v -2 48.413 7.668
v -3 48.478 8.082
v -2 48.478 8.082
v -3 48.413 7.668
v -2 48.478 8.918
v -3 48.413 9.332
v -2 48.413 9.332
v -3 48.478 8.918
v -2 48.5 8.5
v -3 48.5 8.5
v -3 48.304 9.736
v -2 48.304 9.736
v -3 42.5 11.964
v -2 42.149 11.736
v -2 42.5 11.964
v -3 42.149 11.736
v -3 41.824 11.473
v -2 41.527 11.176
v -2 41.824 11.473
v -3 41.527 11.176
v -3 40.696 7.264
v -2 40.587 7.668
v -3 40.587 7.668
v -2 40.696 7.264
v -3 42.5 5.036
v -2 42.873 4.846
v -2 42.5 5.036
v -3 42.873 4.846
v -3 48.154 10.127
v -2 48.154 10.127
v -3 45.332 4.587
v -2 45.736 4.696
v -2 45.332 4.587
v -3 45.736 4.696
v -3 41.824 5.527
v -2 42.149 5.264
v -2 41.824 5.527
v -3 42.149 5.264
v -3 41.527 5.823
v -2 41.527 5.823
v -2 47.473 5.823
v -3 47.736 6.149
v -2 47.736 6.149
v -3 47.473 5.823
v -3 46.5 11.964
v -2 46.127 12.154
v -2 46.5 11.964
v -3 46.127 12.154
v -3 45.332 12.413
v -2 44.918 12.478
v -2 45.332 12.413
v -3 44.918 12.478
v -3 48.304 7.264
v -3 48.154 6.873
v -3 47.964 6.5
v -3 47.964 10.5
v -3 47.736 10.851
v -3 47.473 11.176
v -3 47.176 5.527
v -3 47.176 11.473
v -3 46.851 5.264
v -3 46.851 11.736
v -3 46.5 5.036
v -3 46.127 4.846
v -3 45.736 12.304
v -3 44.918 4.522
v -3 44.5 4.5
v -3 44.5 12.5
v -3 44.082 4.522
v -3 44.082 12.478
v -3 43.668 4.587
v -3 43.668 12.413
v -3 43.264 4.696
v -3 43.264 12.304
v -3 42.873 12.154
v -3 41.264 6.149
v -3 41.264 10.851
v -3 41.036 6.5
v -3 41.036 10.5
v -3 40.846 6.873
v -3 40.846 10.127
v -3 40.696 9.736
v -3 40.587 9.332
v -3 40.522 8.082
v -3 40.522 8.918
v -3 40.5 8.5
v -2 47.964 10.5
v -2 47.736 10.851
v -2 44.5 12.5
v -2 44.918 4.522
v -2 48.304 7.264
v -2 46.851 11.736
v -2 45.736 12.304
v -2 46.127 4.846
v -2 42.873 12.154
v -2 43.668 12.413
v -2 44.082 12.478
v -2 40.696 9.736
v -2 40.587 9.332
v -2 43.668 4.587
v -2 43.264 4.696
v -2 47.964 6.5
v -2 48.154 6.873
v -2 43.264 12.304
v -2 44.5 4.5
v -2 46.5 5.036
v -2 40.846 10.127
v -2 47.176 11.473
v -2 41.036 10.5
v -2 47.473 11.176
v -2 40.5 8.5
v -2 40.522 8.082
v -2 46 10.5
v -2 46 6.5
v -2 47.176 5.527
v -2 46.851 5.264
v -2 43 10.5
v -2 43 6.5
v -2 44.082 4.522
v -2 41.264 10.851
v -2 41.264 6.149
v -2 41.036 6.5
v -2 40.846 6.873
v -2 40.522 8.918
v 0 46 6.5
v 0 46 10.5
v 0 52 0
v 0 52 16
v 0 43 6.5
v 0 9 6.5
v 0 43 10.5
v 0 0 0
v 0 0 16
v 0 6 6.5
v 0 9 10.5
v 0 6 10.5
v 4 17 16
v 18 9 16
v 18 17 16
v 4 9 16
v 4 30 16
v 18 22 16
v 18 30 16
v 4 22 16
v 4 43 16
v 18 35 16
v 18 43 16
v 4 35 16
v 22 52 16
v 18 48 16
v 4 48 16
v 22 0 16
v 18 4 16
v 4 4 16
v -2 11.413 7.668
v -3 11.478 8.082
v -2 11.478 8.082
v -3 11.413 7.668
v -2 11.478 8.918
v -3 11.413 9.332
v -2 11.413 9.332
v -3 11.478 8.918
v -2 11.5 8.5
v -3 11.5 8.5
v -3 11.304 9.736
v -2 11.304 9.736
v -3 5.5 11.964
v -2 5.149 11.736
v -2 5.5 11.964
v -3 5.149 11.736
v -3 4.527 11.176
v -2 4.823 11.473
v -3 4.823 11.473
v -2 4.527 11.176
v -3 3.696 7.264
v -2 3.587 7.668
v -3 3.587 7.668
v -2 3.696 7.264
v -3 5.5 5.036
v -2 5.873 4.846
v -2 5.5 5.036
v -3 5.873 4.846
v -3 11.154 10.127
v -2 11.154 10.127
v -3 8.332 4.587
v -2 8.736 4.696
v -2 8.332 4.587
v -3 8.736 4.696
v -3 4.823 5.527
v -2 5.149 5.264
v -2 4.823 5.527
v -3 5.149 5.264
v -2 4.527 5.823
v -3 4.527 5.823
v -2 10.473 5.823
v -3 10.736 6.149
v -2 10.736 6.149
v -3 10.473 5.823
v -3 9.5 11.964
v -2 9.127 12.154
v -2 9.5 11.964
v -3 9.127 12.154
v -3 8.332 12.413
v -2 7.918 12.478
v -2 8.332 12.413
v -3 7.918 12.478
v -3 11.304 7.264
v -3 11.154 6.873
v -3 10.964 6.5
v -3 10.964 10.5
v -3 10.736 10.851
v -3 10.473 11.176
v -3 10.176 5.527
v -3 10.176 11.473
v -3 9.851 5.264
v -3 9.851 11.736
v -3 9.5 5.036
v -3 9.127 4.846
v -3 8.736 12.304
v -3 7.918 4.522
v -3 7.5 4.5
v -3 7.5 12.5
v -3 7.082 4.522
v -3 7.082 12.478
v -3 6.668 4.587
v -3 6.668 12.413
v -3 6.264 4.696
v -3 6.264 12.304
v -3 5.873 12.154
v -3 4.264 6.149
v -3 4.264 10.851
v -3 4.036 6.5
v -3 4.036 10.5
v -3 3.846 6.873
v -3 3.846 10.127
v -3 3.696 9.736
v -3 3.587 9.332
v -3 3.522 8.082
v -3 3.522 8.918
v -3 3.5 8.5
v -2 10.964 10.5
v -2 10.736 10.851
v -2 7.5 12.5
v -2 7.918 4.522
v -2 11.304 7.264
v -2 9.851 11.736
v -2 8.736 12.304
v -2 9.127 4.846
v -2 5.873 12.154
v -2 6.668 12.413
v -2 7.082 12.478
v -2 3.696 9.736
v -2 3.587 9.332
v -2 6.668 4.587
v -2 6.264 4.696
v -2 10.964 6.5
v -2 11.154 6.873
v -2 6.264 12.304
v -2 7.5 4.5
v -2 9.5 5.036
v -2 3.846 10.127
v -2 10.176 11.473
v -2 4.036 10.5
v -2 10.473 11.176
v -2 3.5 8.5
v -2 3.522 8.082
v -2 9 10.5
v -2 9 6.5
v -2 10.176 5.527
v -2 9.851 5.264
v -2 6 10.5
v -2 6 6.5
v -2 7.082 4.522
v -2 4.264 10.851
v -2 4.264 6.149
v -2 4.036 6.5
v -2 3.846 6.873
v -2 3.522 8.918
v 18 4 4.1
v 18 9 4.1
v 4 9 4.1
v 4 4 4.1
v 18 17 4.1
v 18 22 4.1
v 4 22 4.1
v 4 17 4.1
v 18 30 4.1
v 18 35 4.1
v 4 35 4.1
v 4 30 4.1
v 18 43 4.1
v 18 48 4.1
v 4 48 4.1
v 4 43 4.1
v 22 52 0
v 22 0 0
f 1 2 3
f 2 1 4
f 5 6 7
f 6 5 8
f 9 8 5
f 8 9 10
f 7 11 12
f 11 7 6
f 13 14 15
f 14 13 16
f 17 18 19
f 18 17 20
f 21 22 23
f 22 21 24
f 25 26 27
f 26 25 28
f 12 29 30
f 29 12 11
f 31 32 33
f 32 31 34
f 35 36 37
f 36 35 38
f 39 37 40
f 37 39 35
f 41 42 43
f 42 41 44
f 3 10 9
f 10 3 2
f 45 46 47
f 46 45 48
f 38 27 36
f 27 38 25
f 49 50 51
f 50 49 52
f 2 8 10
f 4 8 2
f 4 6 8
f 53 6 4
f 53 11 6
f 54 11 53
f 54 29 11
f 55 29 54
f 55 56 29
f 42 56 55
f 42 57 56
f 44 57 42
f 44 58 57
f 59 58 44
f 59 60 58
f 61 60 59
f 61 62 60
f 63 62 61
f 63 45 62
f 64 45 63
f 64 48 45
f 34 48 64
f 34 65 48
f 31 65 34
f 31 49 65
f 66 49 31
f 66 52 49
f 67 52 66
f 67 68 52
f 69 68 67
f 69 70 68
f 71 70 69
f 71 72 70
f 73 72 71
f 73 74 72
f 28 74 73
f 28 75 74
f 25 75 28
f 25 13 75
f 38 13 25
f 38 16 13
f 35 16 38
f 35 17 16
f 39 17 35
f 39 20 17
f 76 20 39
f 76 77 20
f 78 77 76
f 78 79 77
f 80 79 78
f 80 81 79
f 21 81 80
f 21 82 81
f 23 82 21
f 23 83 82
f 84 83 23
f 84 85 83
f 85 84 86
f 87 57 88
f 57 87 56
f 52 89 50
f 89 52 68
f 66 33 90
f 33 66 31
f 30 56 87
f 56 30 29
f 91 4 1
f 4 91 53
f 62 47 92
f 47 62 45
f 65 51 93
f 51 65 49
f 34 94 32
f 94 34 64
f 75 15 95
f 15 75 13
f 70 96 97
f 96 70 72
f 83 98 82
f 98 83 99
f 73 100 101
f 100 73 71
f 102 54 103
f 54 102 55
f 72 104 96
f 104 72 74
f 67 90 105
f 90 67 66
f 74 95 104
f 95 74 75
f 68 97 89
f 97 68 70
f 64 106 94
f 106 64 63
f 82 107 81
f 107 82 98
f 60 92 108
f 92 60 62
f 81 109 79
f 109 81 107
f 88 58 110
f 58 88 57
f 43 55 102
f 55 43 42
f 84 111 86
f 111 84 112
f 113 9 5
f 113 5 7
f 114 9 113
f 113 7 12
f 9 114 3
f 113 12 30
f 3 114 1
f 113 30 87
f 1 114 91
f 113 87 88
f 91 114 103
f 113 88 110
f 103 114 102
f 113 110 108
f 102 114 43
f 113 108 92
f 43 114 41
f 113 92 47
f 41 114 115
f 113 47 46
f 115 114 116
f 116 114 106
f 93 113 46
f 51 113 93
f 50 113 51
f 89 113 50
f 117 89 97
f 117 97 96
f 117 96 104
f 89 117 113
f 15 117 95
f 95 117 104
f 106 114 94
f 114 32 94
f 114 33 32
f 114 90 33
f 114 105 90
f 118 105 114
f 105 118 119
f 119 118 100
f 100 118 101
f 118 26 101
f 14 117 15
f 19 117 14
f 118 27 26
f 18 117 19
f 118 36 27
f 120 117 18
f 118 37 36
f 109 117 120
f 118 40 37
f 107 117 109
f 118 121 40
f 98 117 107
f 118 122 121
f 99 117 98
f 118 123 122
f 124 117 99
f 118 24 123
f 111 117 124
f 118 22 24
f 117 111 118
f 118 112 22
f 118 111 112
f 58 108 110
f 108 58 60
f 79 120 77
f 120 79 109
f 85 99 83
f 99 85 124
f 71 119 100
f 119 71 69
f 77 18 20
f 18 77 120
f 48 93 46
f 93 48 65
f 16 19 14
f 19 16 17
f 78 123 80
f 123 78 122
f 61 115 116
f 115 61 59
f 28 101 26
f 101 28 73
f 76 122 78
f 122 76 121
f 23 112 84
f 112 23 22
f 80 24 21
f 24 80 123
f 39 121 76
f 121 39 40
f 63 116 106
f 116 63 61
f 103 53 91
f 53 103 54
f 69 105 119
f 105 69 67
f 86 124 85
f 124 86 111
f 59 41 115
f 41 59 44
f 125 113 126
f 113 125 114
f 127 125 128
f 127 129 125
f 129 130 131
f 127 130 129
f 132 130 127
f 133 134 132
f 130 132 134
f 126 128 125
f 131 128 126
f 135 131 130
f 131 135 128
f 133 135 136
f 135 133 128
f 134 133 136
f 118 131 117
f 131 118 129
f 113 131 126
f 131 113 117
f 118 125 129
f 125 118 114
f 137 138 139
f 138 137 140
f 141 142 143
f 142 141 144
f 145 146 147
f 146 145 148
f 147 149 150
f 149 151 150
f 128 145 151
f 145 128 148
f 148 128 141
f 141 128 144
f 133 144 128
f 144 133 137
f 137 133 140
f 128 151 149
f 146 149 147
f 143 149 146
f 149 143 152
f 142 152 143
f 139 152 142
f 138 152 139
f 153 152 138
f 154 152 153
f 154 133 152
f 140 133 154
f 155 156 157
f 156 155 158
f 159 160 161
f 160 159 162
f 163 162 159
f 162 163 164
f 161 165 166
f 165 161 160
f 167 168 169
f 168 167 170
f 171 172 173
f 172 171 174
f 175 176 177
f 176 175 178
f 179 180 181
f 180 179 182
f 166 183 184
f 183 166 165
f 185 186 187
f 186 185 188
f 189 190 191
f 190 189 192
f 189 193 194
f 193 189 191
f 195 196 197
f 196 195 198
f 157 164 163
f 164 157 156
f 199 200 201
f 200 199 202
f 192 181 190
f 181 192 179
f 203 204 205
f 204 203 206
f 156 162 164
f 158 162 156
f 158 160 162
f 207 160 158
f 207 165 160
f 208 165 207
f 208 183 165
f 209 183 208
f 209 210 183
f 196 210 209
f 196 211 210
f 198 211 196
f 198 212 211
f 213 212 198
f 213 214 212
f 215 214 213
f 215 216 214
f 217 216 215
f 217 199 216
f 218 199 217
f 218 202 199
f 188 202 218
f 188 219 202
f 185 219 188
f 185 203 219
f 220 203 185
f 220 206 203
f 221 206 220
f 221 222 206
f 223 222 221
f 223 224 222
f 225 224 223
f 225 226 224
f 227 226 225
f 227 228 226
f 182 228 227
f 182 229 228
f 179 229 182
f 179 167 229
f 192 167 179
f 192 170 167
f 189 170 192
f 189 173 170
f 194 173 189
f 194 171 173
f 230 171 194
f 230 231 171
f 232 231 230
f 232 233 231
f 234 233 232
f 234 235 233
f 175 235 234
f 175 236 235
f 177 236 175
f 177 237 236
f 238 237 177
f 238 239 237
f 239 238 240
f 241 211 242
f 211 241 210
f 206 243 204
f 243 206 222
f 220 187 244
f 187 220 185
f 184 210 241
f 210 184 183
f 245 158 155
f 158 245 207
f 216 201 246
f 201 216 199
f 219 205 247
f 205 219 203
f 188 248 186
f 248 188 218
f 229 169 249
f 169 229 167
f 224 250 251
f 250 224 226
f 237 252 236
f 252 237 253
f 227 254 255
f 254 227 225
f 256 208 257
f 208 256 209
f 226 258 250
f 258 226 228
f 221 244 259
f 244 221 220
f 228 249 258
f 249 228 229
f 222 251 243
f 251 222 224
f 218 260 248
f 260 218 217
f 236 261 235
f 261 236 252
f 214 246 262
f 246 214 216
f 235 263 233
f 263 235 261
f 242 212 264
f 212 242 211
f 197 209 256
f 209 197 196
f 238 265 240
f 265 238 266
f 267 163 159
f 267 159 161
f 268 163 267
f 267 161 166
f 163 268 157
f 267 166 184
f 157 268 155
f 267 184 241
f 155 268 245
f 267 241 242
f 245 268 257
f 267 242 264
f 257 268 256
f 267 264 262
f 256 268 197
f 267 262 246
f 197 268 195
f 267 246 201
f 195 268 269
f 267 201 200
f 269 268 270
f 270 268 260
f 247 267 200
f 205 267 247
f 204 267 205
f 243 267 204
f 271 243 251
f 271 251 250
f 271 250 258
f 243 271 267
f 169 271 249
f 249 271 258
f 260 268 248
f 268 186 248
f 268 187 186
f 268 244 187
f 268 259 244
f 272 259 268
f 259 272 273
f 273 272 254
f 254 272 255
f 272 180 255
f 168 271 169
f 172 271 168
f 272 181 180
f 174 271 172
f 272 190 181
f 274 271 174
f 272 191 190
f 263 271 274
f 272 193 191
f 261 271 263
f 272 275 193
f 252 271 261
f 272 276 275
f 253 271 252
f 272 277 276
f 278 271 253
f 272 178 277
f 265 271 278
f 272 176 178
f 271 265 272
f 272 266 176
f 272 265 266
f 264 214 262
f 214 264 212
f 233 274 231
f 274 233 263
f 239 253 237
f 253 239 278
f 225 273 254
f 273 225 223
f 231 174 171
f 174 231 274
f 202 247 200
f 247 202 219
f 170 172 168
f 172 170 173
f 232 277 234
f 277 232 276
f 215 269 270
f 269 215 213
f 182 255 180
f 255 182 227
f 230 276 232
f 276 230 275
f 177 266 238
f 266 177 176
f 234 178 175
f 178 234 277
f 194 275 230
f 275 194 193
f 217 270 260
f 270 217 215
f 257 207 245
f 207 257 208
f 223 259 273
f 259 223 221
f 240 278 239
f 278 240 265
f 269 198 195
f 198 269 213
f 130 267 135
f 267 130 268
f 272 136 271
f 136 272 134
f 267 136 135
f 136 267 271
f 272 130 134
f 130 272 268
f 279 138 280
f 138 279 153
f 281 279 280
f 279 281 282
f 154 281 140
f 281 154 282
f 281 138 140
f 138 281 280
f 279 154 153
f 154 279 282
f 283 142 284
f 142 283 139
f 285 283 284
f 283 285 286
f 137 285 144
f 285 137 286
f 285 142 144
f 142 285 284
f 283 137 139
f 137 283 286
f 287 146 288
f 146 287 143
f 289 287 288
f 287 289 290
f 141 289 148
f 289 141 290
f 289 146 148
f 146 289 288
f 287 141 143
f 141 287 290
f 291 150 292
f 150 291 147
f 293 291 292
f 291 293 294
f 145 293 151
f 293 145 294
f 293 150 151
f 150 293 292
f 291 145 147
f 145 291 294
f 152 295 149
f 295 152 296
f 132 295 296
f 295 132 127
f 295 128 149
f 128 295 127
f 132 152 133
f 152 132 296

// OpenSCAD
$fn = 60;
disc_height =  1;
disc_diam   =  8;
stem_width  =  3;
stem_height =  2;
stem_length =  4;
base_height =  2.5;
base_width  =  8;
base_length = 15;
disc_dist   = 37;
wall        =  2;

usb_width   =  5;
usb_length  = 14;
usb_height  = 12;
usb_no      =  4;
usb_margin  =  8;

usb_holder_length = usb_no * (usb_width+usb_margin);
usb_holder_width  = usb_length+usb_margin;
usb_holder_height = usb_height+0.5*usb_margin;

module pegdisc() {
    //disc
    color( [1, 0, 0] )
    cylinder( d = disc_diam, h = disc_height );
    
    //stem
    color( [0, 1, 0] )
    translate( [-0.5*stem_width, -0.5*stem_length , disc_height])
        cube([ stem_width, stem_length, stem_height ]);
        
    //base
    color( [0, 0, 1] )
    translate( [-0.5*base_width, -0.5*base_length, disc_height+stem_height])
        cube( [ base_width, base_length, base_height ] ); 
}

module attachment() {
    cube([ wall, disc_dist, base_length ] );

    translate([base_height, disc_dist, 0.5*base_length])
        rotate([90, 0, 90])
            translate([ 0, 0, -1*(disc_height+stem_height+base_height) ])
                pegdisc();

    translate([base_height, 0, 0.5*base_length])
        rotate([90, 0, 90])
            translate([ 0, 0, -1*(disc_height+stem_height+base_height) ])
                pegdisc();
}

module usb() {
    cube( [ usb_length, usb_width, usb_height ]);
}

module usb_holder() {
    cube( [ usb_holder_width, usb_holder_length, usb_holder_height] );
}

translate([ 0, 0.5*(usb_holder_length-disc_dist), usb_holder_height - base_length]) attachment();

difference() {
    usb_holder();
    //holes for usbs:
    for (i = [0:1:usb_no-1] ) {
        translate([ 0.5*usb_margin, 0.5*usb_margin+i*(usb_width+usb_margin), 0.5*usb_margin+0.1 ])
            usb();
    }
}
